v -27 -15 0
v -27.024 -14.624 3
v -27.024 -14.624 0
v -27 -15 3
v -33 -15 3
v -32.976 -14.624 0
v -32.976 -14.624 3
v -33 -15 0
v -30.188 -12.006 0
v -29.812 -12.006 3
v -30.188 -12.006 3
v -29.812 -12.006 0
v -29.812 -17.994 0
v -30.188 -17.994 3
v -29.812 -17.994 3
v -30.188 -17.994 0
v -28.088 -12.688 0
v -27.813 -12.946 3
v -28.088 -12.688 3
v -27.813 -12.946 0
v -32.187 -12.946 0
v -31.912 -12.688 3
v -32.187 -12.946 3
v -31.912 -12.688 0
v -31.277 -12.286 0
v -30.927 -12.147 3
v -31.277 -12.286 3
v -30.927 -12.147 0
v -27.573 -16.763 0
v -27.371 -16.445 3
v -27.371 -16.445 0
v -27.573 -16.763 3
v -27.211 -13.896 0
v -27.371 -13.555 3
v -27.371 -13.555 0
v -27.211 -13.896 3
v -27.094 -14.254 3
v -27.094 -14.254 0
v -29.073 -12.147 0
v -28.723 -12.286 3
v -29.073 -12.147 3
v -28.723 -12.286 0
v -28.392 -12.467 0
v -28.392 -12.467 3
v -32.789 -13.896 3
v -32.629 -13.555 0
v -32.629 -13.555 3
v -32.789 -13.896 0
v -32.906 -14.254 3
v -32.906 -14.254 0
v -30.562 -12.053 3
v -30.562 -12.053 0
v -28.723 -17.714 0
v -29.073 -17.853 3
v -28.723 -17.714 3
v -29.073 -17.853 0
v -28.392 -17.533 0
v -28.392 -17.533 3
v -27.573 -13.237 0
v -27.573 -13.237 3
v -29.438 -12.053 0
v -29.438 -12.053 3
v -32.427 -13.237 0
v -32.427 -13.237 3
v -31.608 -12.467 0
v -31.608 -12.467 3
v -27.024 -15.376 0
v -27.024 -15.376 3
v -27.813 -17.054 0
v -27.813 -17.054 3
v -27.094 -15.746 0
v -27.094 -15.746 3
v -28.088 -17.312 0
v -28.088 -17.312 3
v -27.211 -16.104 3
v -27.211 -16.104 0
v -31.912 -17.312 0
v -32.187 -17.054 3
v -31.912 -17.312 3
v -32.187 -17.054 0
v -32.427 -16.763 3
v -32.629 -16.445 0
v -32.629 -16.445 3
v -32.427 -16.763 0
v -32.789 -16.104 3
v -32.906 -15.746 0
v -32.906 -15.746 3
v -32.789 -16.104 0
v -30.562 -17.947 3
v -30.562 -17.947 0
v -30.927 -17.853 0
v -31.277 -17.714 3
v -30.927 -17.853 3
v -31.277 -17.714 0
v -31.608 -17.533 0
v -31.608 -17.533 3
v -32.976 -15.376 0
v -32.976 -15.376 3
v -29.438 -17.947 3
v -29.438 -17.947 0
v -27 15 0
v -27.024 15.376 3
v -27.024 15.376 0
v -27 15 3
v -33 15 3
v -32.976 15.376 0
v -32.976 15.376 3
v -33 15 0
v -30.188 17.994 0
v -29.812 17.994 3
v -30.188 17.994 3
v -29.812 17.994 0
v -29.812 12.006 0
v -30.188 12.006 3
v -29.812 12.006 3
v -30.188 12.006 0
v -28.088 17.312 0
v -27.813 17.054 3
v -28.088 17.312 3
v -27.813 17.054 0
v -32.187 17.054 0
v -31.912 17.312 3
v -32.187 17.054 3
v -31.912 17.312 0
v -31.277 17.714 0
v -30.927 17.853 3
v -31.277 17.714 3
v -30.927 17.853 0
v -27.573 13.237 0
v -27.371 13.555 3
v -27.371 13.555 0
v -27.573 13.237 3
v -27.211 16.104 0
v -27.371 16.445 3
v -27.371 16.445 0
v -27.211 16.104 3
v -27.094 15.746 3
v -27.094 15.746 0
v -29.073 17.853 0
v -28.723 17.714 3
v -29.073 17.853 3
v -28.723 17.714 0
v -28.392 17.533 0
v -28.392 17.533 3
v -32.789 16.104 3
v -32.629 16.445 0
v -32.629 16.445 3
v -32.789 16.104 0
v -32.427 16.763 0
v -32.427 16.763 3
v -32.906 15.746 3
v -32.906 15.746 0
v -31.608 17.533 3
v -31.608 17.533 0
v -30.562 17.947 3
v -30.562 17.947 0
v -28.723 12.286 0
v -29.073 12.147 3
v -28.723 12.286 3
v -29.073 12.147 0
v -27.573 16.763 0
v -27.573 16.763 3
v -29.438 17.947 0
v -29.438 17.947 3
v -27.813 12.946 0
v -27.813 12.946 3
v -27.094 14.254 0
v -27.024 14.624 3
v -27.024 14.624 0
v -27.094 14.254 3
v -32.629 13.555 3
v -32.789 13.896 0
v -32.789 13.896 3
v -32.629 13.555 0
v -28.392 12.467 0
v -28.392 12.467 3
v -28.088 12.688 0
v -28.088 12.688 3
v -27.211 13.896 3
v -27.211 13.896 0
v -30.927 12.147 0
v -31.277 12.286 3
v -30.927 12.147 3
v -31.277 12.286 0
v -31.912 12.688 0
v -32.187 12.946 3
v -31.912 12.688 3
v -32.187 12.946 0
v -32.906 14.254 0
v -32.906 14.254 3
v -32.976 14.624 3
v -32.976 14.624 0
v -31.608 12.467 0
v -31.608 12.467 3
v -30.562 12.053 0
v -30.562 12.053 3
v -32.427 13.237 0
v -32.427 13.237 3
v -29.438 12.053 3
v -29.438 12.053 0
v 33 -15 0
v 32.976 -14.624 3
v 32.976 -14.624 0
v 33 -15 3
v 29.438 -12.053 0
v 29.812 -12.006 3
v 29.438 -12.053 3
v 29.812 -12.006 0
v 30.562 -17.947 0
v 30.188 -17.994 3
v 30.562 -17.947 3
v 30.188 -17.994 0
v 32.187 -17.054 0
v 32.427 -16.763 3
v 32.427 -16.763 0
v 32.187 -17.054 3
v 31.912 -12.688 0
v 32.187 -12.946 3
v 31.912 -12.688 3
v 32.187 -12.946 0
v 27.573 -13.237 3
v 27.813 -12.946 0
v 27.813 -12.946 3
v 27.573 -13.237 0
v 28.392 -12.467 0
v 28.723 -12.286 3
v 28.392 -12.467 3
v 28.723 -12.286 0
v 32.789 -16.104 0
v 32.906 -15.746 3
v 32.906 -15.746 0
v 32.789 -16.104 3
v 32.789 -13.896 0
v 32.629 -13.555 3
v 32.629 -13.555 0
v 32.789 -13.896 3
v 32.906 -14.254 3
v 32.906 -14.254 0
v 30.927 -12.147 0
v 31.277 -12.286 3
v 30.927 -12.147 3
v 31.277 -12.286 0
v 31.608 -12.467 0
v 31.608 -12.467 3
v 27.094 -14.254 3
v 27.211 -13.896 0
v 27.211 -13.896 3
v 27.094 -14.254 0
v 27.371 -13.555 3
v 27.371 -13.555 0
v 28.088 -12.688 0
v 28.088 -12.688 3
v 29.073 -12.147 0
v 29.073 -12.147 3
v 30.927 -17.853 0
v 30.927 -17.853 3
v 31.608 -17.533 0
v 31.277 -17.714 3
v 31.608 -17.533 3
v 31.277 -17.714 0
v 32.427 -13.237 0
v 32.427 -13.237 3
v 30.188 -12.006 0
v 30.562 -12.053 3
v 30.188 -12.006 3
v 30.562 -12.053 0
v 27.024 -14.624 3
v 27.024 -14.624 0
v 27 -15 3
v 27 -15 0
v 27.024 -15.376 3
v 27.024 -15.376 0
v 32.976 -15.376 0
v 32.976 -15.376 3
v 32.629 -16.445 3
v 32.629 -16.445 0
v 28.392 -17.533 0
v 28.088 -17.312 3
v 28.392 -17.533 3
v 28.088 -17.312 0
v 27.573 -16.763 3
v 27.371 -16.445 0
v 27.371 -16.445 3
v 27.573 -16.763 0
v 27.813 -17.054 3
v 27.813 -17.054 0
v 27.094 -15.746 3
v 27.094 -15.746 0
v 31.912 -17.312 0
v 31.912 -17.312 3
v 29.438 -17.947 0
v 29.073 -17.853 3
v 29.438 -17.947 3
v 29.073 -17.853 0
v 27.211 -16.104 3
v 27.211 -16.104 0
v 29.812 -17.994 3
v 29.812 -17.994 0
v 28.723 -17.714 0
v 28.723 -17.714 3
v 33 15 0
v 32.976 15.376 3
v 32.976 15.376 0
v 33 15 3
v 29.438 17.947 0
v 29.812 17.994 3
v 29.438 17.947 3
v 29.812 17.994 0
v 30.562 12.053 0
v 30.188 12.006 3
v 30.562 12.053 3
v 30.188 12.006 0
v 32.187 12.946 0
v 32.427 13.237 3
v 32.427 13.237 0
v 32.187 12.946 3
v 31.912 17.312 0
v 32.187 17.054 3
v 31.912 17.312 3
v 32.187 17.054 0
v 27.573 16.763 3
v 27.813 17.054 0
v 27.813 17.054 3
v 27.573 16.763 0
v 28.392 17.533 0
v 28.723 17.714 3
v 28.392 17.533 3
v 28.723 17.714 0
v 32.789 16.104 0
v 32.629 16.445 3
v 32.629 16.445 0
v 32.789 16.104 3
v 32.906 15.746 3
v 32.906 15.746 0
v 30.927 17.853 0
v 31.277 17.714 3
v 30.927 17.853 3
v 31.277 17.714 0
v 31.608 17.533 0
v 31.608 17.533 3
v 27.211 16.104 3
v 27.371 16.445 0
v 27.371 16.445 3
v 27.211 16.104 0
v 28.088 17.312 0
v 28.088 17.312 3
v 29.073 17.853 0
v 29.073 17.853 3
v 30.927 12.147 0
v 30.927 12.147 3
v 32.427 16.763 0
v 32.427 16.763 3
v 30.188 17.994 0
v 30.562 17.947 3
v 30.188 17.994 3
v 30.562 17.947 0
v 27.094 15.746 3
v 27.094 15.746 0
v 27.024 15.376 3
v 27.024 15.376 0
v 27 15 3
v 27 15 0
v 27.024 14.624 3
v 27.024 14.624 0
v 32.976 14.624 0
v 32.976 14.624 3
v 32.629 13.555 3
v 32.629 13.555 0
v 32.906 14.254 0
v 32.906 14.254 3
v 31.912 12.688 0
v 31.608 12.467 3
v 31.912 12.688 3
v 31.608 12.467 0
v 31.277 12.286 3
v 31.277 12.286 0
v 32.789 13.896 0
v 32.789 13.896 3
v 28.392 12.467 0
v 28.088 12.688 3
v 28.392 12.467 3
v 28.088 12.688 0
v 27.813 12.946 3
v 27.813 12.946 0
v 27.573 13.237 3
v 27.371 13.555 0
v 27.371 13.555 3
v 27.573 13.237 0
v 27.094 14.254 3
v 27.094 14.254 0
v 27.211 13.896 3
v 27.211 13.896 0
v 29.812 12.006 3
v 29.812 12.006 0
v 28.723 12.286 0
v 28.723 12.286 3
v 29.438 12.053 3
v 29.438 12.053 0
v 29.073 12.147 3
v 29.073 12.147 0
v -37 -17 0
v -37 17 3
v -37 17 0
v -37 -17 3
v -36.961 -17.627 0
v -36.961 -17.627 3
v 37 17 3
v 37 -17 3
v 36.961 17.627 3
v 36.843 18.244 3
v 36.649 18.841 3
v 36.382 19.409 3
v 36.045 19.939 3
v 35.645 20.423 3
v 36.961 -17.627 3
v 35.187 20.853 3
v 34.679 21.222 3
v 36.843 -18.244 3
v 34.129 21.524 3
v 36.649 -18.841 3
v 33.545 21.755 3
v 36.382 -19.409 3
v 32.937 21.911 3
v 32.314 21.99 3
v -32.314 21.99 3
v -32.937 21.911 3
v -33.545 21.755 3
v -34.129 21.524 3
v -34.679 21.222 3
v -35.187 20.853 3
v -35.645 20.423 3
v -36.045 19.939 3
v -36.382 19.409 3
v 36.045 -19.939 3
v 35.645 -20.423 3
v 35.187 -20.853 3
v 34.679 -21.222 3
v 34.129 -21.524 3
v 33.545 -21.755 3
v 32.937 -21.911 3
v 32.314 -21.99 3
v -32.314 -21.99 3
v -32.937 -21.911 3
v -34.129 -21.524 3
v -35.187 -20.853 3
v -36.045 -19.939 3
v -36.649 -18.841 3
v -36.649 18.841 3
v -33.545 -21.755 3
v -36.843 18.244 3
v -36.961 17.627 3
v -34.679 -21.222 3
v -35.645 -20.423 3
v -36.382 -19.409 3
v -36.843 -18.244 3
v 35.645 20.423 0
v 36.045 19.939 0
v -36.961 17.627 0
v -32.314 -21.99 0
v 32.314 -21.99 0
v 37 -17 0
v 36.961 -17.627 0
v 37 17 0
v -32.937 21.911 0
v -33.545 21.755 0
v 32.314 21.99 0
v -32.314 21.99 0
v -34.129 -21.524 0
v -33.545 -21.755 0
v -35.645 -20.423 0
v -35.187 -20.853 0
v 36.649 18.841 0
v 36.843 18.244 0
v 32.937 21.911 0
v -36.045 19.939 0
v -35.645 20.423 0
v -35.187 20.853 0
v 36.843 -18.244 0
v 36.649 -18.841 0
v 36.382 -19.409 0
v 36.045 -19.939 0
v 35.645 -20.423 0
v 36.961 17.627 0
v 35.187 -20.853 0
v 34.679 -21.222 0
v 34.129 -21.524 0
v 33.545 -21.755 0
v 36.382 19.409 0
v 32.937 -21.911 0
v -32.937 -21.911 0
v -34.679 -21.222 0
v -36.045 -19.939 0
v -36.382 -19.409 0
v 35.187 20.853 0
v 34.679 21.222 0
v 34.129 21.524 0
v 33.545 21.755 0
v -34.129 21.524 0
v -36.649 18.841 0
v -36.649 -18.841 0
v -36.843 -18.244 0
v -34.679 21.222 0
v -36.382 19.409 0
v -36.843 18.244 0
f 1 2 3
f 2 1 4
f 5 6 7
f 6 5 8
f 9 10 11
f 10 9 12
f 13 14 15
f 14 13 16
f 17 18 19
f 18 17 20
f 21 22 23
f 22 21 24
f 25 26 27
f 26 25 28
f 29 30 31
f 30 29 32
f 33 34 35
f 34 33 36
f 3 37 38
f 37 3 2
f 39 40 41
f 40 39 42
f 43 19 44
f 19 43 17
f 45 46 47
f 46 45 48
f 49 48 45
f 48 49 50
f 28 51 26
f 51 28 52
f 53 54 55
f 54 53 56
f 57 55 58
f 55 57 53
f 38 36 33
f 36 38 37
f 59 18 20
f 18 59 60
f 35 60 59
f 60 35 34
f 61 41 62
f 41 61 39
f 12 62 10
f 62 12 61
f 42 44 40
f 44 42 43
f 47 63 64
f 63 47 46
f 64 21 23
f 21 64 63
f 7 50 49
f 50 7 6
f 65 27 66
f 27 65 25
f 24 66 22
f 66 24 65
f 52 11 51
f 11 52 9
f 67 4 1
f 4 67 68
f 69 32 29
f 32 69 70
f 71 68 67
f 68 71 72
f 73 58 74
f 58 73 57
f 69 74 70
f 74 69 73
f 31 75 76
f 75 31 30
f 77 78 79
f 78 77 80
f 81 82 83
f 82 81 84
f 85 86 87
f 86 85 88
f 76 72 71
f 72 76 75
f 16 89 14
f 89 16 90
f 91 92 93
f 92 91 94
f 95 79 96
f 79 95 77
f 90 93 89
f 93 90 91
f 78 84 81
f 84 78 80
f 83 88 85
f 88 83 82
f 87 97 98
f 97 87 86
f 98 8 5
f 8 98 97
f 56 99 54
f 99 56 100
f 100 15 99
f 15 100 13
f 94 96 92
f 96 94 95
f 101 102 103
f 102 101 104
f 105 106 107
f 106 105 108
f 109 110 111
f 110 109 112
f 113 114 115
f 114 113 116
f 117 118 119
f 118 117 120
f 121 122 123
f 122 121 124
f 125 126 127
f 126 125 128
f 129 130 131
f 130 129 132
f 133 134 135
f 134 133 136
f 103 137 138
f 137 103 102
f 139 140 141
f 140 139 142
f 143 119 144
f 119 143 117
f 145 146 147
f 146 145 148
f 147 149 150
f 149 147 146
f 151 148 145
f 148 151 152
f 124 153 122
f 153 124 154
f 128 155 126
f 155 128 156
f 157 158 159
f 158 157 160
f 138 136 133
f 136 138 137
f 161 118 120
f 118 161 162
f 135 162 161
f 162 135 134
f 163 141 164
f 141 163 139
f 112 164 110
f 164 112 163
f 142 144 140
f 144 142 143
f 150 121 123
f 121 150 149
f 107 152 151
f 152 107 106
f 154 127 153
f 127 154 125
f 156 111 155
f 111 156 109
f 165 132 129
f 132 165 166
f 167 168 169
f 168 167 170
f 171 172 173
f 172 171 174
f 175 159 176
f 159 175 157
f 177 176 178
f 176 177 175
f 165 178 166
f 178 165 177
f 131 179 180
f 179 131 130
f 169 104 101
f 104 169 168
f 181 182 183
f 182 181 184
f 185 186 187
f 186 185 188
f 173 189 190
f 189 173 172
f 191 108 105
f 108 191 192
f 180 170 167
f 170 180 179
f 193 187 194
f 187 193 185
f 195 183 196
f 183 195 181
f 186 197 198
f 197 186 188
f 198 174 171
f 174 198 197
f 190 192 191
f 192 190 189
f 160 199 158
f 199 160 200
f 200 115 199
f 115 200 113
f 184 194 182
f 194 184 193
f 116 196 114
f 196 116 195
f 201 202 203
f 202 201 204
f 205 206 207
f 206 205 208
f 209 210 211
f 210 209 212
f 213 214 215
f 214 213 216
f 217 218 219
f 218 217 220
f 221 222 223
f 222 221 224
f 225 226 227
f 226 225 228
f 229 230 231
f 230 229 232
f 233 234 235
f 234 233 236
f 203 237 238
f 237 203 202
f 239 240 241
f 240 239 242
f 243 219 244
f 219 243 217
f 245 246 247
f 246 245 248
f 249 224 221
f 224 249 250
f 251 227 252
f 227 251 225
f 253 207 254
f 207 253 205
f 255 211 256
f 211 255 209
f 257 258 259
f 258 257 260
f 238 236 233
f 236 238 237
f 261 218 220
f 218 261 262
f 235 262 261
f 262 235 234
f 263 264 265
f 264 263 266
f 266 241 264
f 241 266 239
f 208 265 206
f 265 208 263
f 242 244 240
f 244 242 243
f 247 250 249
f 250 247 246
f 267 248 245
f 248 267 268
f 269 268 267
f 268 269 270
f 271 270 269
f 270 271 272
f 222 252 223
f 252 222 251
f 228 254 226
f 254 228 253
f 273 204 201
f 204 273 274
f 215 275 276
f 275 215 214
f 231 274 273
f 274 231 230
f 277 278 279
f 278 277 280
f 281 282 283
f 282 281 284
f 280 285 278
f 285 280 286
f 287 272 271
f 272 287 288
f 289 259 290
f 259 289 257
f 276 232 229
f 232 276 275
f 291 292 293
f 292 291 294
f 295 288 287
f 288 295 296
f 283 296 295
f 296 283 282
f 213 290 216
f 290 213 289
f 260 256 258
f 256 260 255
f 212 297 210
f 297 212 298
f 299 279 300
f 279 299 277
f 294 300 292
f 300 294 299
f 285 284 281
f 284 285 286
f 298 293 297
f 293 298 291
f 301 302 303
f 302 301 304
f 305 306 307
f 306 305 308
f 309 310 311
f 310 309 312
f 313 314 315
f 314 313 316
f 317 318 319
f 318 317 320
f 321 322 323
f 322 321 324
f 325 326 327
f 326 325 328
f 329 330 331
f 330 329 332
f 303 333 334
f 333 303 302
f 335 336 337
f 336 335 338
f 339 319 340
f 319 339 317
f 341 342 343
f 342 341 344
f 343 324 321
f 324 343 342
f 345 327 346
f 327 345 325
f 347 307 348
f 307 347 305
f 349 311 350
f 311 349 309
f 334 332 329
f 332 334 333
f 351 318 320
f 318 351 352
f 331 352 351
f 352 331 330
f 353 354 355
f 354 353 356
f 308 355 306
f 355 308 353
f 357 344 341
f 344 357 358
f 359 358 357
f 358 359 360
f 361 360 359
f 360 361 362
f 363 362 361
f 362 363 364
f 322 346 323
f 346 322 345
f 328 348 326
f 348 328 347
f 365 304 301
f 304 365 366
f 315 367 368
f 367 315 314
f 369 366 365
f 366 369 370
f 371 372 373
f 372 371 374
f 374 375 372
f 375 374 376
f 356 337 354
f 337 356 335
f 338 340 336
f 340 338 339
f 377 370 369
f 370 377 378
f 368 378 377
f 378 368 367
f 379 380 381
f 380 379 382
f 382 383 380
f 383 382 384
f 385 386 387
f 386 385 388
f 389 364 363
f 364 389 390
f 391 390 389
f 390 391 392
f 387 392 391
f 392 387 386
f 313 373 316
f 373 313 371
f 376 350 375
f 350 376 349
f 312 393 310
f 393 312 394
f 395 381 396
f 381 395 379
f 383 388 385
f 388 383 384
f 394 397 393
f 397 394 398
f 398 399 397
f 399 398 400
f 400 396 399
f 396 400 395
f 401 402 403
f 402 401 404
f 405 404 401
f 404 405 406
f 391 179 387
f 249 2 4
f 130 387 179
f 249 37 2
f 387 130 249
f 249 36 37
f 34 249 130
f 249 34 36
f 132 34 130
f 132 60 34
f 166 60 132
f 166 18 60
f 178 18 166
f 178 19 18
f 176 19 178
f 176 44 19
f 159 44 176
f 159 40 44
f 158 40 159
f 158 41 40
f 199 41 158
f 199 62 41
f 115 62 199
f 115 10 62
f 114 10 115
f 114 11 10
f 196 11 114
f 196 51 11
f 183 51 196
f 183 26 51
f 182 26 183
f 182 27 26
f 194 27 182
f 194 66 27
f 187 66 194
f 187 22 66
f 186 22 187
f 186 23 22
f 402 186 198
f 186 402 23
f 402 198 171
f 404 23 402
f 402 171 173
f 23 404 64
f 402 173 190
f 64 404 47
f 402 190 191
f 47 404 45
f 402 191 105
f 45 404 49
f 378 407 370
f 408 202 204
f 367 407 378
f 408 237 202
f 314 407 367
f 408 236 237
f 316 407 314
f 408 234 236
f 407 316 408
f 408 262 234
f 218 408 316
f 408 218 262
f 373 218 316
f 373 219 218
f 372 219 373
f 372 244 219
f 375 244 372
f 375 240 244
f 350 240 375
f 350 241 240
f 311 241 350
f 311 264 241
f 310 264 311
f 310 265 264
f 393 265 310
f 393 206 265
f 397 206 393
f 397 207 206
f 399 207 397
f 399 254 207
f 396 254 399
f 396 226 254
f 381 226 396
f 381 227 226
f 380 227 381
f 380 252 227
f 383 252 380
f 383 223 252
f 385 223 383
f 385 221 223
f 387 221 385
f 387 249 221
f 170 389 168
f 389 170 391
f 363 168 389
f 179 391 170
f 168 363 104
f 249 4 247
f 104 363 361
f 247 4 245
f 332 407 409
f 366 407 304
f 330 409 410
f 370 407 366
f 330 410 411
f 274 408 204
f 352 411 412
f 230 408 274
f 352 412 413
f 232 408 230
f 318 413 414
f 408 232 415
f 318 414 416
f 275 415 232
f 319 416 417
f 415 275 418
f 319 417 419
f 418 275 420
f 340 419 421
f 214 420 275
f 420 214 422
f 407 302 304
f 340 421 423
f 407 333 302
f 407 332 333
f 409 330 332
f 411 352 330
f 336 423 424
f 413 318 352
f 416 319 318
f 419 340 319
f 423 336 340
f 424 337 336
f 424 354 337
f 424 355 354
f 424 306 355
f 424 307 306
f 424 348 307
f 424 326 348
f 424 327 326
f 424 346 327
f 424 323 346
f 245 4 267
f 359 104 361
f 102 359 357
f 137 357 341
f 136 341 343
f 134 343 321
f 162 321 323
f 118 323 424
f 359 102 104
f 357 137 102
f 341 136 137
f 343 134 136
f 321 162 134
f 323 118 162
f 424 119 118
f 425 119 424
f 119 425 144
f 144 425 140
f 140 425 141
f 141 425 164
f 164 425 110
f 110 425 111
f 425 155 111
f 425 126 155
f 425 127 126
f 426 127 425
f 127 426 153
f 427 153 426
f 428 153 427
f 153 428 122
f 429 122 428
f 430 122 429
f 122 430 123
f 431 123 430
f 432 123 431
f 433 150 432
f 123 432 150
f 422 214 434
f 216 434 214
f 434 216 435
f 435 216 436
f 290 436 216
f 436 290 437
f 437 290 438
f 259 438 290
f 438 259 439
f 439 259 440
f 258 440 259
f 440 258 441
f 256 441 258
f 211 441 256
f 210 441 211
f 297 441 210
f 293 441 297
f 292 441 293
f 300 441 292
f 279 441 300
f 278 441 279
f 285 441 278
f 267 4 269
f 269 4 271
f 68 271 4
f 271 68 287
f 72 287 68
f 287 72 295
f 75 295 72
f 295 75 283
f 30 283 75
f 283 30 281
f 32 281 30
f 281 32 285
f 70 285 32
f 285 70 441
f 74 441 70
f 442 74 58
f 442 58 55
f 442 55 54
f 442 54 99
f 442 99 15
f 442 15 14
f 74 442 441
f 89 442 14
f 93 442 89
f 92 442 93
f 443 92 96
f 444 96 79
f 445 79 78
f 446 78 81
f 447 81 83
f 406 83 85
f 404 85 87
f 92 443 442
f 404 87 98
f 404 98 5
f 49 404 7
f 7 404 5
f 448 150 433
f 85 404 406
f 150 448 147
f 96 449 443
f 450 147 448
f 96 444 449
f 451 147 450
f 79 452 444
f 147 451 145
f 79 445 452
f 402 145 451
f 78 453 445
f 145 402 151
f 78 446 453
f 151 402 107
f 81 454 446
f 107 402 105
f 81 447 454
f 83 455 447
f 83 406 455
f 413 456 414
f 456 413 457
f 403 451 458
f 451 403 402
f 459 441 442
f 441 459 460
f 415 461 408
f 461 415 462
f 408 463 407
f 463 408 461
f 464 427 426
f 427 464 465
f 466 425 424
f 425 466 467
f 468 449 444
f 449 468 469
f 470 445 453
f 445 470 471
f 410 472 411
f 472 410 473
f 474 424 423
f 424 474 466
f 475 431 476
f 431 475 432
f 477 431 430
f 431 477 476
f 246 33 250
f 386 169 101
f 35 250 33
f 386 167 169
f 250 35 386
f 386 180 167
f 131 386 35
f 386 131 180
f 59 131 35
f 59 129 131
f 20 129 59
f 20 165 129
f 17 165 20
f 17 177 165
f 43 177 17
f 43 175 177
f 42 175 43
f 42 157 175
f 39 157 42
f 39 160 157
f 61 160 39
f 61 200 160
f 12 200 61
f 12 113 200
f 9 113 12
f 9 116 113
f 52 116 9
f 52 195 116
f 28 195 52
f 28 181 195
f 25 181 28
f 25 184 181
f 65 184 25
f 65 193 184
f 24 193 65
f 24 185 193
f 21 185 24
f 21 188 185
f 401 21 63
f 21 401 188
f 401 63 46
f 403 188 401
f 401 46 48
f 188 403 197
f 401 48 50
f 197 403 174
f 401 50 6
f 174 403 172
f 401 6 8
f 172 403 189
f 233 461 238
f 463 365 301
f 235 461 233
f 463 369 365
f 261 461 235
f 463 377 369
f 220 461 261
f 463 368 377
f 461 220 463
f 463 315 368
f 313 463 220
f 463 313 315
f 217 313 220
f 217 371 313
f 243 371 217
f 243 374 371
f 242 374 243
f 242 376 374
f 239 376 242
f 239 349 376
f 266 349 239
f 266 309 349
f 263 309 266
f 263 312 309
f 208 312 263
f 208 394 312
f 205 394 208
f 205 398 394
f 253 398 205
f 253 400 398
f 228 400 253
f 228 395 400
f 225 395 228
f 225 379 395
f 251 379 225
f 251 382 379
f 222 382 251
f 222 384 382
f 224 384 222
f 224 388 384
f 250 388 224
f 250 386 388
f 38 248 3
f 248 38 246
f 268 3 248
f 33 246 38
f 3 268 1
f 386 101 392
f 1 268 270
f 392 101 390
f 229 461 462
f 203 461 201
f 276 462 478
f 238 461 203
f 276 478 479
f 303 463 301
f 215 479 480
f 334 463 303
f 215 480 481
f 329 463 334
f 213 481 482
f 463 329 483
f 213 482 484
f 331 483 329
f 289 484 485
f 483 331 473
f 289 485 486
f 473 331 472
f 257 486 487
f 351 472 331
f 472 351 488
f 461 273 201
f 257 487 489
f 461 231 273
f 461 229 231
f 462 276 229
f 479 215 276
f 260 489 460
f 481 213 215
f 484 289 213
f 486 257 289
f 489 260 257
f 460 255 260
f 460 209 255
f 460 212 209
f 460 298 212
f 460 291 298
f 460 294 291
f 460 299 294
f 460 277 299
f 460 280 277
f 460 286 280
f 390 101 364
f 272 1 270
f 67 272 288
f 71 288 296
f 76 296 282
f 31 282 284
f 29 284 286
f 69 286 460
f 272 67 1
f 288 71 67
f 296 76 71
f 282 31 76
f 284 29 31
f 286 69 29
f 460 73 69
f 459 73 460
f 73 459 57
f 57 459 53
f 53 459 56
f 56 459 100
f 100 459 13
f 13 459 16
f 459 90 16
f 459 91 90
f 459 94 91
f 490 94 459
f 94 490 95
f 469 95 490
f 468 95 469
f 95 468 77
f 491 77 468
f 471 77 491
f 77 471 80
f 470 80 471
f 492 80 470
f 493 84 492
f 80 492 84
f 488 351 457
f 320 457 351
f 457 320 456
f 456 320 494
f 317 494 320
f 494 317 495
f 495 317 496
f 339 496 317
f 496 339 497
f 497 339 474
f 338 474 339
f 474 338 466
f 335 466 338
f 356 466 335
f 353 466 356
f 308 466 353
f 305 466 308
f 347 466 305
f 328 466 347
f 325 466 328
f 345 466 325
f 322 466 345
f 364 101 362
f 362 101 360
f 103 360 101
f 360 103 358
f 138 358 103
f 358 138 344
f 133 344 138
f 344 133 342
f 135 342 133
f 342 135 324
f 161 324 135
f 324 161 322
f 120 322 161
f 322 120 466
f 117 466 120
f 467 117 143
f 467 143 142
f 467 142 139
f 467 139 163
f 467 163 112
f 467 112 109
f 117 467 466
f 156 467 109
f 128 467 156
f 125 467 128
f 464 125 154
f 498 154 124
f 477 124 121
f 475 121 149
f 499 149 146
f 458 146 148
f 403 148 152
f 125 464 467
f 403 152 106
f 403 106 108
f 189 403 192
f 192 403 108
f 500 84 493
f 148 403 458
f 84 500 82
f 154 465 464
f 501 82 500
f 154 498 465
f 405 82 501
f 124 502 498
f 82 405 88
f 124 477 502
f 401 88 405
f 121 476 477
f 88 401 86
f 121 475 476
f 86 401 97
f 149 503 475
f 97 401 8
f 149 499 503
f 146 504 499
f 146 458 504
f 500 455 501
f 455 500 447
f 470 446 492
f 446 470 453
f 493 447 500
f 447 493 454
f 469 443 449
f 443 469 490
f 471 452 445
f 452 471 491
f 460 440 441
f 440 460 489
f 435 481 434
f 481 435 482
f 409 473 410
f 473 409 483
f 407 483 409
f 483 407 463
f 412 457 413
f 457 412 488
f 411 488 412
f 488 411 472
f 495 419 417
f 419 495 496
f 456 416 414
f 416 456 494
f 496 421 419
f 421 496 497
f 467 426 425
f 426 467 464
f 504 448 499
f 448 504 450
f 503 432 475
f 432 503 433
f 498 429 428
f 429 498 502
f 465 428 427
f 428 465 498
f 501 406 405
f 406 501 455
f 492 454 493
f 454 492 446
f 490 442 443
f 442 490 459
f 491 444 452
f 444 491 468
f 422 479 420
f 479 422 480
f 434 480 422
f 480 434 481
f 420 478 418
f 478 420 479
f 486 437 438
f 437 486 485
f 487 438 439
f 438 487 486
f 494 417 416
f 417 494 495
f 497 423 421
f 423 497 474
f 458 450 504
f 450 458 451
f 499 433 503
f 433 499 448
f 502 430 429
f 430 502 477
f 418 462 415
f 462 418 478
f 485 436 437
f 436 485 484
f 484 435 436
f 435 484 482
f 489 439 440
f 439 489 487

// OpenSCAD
$fn = 50;


difference() {
	union() {
		hull() {
			translate(v = [-32.0000000000, 17.0000000000, 0]) {
				cylinder(h = 3, r = 5);
			}
			translate(v = [32.0000000000, 17.0000000000, 0]) {
				cylinder(h = 3, r = 5);
			}
			translate(v = [-32.0000000000, -17.0000000000, 0]) {
				cylinder(h = 3, r = 5);
			}
			translate(v = [32.0000000000, -17.0000000000, 0]) {
				cylinder(h = 3, r = 5);
			}
		}
	}
	union() {
		translate(v = [-30.0000000000, -15.0000000000, -100.0000000000]) {
			cylinder(h = 200, r = 3.0000000000);
		}
		translate(v = [-30.0000000000, 15.0000000000, -100.0000000000]) {
			cylinder(h = 200, r = 3.0000000000);
		}
		translate(v = [30.0000000000, -15.0000000000, -100.0000000000]) {
			cylinder(h = 200, r = 3.0000000000);
		}
		translate(v = [30.0000000000, 15.0000000000, -100.0000000000]) {
			cylinder(h = 200, r = 3.0000000000);
		}
	}
}
